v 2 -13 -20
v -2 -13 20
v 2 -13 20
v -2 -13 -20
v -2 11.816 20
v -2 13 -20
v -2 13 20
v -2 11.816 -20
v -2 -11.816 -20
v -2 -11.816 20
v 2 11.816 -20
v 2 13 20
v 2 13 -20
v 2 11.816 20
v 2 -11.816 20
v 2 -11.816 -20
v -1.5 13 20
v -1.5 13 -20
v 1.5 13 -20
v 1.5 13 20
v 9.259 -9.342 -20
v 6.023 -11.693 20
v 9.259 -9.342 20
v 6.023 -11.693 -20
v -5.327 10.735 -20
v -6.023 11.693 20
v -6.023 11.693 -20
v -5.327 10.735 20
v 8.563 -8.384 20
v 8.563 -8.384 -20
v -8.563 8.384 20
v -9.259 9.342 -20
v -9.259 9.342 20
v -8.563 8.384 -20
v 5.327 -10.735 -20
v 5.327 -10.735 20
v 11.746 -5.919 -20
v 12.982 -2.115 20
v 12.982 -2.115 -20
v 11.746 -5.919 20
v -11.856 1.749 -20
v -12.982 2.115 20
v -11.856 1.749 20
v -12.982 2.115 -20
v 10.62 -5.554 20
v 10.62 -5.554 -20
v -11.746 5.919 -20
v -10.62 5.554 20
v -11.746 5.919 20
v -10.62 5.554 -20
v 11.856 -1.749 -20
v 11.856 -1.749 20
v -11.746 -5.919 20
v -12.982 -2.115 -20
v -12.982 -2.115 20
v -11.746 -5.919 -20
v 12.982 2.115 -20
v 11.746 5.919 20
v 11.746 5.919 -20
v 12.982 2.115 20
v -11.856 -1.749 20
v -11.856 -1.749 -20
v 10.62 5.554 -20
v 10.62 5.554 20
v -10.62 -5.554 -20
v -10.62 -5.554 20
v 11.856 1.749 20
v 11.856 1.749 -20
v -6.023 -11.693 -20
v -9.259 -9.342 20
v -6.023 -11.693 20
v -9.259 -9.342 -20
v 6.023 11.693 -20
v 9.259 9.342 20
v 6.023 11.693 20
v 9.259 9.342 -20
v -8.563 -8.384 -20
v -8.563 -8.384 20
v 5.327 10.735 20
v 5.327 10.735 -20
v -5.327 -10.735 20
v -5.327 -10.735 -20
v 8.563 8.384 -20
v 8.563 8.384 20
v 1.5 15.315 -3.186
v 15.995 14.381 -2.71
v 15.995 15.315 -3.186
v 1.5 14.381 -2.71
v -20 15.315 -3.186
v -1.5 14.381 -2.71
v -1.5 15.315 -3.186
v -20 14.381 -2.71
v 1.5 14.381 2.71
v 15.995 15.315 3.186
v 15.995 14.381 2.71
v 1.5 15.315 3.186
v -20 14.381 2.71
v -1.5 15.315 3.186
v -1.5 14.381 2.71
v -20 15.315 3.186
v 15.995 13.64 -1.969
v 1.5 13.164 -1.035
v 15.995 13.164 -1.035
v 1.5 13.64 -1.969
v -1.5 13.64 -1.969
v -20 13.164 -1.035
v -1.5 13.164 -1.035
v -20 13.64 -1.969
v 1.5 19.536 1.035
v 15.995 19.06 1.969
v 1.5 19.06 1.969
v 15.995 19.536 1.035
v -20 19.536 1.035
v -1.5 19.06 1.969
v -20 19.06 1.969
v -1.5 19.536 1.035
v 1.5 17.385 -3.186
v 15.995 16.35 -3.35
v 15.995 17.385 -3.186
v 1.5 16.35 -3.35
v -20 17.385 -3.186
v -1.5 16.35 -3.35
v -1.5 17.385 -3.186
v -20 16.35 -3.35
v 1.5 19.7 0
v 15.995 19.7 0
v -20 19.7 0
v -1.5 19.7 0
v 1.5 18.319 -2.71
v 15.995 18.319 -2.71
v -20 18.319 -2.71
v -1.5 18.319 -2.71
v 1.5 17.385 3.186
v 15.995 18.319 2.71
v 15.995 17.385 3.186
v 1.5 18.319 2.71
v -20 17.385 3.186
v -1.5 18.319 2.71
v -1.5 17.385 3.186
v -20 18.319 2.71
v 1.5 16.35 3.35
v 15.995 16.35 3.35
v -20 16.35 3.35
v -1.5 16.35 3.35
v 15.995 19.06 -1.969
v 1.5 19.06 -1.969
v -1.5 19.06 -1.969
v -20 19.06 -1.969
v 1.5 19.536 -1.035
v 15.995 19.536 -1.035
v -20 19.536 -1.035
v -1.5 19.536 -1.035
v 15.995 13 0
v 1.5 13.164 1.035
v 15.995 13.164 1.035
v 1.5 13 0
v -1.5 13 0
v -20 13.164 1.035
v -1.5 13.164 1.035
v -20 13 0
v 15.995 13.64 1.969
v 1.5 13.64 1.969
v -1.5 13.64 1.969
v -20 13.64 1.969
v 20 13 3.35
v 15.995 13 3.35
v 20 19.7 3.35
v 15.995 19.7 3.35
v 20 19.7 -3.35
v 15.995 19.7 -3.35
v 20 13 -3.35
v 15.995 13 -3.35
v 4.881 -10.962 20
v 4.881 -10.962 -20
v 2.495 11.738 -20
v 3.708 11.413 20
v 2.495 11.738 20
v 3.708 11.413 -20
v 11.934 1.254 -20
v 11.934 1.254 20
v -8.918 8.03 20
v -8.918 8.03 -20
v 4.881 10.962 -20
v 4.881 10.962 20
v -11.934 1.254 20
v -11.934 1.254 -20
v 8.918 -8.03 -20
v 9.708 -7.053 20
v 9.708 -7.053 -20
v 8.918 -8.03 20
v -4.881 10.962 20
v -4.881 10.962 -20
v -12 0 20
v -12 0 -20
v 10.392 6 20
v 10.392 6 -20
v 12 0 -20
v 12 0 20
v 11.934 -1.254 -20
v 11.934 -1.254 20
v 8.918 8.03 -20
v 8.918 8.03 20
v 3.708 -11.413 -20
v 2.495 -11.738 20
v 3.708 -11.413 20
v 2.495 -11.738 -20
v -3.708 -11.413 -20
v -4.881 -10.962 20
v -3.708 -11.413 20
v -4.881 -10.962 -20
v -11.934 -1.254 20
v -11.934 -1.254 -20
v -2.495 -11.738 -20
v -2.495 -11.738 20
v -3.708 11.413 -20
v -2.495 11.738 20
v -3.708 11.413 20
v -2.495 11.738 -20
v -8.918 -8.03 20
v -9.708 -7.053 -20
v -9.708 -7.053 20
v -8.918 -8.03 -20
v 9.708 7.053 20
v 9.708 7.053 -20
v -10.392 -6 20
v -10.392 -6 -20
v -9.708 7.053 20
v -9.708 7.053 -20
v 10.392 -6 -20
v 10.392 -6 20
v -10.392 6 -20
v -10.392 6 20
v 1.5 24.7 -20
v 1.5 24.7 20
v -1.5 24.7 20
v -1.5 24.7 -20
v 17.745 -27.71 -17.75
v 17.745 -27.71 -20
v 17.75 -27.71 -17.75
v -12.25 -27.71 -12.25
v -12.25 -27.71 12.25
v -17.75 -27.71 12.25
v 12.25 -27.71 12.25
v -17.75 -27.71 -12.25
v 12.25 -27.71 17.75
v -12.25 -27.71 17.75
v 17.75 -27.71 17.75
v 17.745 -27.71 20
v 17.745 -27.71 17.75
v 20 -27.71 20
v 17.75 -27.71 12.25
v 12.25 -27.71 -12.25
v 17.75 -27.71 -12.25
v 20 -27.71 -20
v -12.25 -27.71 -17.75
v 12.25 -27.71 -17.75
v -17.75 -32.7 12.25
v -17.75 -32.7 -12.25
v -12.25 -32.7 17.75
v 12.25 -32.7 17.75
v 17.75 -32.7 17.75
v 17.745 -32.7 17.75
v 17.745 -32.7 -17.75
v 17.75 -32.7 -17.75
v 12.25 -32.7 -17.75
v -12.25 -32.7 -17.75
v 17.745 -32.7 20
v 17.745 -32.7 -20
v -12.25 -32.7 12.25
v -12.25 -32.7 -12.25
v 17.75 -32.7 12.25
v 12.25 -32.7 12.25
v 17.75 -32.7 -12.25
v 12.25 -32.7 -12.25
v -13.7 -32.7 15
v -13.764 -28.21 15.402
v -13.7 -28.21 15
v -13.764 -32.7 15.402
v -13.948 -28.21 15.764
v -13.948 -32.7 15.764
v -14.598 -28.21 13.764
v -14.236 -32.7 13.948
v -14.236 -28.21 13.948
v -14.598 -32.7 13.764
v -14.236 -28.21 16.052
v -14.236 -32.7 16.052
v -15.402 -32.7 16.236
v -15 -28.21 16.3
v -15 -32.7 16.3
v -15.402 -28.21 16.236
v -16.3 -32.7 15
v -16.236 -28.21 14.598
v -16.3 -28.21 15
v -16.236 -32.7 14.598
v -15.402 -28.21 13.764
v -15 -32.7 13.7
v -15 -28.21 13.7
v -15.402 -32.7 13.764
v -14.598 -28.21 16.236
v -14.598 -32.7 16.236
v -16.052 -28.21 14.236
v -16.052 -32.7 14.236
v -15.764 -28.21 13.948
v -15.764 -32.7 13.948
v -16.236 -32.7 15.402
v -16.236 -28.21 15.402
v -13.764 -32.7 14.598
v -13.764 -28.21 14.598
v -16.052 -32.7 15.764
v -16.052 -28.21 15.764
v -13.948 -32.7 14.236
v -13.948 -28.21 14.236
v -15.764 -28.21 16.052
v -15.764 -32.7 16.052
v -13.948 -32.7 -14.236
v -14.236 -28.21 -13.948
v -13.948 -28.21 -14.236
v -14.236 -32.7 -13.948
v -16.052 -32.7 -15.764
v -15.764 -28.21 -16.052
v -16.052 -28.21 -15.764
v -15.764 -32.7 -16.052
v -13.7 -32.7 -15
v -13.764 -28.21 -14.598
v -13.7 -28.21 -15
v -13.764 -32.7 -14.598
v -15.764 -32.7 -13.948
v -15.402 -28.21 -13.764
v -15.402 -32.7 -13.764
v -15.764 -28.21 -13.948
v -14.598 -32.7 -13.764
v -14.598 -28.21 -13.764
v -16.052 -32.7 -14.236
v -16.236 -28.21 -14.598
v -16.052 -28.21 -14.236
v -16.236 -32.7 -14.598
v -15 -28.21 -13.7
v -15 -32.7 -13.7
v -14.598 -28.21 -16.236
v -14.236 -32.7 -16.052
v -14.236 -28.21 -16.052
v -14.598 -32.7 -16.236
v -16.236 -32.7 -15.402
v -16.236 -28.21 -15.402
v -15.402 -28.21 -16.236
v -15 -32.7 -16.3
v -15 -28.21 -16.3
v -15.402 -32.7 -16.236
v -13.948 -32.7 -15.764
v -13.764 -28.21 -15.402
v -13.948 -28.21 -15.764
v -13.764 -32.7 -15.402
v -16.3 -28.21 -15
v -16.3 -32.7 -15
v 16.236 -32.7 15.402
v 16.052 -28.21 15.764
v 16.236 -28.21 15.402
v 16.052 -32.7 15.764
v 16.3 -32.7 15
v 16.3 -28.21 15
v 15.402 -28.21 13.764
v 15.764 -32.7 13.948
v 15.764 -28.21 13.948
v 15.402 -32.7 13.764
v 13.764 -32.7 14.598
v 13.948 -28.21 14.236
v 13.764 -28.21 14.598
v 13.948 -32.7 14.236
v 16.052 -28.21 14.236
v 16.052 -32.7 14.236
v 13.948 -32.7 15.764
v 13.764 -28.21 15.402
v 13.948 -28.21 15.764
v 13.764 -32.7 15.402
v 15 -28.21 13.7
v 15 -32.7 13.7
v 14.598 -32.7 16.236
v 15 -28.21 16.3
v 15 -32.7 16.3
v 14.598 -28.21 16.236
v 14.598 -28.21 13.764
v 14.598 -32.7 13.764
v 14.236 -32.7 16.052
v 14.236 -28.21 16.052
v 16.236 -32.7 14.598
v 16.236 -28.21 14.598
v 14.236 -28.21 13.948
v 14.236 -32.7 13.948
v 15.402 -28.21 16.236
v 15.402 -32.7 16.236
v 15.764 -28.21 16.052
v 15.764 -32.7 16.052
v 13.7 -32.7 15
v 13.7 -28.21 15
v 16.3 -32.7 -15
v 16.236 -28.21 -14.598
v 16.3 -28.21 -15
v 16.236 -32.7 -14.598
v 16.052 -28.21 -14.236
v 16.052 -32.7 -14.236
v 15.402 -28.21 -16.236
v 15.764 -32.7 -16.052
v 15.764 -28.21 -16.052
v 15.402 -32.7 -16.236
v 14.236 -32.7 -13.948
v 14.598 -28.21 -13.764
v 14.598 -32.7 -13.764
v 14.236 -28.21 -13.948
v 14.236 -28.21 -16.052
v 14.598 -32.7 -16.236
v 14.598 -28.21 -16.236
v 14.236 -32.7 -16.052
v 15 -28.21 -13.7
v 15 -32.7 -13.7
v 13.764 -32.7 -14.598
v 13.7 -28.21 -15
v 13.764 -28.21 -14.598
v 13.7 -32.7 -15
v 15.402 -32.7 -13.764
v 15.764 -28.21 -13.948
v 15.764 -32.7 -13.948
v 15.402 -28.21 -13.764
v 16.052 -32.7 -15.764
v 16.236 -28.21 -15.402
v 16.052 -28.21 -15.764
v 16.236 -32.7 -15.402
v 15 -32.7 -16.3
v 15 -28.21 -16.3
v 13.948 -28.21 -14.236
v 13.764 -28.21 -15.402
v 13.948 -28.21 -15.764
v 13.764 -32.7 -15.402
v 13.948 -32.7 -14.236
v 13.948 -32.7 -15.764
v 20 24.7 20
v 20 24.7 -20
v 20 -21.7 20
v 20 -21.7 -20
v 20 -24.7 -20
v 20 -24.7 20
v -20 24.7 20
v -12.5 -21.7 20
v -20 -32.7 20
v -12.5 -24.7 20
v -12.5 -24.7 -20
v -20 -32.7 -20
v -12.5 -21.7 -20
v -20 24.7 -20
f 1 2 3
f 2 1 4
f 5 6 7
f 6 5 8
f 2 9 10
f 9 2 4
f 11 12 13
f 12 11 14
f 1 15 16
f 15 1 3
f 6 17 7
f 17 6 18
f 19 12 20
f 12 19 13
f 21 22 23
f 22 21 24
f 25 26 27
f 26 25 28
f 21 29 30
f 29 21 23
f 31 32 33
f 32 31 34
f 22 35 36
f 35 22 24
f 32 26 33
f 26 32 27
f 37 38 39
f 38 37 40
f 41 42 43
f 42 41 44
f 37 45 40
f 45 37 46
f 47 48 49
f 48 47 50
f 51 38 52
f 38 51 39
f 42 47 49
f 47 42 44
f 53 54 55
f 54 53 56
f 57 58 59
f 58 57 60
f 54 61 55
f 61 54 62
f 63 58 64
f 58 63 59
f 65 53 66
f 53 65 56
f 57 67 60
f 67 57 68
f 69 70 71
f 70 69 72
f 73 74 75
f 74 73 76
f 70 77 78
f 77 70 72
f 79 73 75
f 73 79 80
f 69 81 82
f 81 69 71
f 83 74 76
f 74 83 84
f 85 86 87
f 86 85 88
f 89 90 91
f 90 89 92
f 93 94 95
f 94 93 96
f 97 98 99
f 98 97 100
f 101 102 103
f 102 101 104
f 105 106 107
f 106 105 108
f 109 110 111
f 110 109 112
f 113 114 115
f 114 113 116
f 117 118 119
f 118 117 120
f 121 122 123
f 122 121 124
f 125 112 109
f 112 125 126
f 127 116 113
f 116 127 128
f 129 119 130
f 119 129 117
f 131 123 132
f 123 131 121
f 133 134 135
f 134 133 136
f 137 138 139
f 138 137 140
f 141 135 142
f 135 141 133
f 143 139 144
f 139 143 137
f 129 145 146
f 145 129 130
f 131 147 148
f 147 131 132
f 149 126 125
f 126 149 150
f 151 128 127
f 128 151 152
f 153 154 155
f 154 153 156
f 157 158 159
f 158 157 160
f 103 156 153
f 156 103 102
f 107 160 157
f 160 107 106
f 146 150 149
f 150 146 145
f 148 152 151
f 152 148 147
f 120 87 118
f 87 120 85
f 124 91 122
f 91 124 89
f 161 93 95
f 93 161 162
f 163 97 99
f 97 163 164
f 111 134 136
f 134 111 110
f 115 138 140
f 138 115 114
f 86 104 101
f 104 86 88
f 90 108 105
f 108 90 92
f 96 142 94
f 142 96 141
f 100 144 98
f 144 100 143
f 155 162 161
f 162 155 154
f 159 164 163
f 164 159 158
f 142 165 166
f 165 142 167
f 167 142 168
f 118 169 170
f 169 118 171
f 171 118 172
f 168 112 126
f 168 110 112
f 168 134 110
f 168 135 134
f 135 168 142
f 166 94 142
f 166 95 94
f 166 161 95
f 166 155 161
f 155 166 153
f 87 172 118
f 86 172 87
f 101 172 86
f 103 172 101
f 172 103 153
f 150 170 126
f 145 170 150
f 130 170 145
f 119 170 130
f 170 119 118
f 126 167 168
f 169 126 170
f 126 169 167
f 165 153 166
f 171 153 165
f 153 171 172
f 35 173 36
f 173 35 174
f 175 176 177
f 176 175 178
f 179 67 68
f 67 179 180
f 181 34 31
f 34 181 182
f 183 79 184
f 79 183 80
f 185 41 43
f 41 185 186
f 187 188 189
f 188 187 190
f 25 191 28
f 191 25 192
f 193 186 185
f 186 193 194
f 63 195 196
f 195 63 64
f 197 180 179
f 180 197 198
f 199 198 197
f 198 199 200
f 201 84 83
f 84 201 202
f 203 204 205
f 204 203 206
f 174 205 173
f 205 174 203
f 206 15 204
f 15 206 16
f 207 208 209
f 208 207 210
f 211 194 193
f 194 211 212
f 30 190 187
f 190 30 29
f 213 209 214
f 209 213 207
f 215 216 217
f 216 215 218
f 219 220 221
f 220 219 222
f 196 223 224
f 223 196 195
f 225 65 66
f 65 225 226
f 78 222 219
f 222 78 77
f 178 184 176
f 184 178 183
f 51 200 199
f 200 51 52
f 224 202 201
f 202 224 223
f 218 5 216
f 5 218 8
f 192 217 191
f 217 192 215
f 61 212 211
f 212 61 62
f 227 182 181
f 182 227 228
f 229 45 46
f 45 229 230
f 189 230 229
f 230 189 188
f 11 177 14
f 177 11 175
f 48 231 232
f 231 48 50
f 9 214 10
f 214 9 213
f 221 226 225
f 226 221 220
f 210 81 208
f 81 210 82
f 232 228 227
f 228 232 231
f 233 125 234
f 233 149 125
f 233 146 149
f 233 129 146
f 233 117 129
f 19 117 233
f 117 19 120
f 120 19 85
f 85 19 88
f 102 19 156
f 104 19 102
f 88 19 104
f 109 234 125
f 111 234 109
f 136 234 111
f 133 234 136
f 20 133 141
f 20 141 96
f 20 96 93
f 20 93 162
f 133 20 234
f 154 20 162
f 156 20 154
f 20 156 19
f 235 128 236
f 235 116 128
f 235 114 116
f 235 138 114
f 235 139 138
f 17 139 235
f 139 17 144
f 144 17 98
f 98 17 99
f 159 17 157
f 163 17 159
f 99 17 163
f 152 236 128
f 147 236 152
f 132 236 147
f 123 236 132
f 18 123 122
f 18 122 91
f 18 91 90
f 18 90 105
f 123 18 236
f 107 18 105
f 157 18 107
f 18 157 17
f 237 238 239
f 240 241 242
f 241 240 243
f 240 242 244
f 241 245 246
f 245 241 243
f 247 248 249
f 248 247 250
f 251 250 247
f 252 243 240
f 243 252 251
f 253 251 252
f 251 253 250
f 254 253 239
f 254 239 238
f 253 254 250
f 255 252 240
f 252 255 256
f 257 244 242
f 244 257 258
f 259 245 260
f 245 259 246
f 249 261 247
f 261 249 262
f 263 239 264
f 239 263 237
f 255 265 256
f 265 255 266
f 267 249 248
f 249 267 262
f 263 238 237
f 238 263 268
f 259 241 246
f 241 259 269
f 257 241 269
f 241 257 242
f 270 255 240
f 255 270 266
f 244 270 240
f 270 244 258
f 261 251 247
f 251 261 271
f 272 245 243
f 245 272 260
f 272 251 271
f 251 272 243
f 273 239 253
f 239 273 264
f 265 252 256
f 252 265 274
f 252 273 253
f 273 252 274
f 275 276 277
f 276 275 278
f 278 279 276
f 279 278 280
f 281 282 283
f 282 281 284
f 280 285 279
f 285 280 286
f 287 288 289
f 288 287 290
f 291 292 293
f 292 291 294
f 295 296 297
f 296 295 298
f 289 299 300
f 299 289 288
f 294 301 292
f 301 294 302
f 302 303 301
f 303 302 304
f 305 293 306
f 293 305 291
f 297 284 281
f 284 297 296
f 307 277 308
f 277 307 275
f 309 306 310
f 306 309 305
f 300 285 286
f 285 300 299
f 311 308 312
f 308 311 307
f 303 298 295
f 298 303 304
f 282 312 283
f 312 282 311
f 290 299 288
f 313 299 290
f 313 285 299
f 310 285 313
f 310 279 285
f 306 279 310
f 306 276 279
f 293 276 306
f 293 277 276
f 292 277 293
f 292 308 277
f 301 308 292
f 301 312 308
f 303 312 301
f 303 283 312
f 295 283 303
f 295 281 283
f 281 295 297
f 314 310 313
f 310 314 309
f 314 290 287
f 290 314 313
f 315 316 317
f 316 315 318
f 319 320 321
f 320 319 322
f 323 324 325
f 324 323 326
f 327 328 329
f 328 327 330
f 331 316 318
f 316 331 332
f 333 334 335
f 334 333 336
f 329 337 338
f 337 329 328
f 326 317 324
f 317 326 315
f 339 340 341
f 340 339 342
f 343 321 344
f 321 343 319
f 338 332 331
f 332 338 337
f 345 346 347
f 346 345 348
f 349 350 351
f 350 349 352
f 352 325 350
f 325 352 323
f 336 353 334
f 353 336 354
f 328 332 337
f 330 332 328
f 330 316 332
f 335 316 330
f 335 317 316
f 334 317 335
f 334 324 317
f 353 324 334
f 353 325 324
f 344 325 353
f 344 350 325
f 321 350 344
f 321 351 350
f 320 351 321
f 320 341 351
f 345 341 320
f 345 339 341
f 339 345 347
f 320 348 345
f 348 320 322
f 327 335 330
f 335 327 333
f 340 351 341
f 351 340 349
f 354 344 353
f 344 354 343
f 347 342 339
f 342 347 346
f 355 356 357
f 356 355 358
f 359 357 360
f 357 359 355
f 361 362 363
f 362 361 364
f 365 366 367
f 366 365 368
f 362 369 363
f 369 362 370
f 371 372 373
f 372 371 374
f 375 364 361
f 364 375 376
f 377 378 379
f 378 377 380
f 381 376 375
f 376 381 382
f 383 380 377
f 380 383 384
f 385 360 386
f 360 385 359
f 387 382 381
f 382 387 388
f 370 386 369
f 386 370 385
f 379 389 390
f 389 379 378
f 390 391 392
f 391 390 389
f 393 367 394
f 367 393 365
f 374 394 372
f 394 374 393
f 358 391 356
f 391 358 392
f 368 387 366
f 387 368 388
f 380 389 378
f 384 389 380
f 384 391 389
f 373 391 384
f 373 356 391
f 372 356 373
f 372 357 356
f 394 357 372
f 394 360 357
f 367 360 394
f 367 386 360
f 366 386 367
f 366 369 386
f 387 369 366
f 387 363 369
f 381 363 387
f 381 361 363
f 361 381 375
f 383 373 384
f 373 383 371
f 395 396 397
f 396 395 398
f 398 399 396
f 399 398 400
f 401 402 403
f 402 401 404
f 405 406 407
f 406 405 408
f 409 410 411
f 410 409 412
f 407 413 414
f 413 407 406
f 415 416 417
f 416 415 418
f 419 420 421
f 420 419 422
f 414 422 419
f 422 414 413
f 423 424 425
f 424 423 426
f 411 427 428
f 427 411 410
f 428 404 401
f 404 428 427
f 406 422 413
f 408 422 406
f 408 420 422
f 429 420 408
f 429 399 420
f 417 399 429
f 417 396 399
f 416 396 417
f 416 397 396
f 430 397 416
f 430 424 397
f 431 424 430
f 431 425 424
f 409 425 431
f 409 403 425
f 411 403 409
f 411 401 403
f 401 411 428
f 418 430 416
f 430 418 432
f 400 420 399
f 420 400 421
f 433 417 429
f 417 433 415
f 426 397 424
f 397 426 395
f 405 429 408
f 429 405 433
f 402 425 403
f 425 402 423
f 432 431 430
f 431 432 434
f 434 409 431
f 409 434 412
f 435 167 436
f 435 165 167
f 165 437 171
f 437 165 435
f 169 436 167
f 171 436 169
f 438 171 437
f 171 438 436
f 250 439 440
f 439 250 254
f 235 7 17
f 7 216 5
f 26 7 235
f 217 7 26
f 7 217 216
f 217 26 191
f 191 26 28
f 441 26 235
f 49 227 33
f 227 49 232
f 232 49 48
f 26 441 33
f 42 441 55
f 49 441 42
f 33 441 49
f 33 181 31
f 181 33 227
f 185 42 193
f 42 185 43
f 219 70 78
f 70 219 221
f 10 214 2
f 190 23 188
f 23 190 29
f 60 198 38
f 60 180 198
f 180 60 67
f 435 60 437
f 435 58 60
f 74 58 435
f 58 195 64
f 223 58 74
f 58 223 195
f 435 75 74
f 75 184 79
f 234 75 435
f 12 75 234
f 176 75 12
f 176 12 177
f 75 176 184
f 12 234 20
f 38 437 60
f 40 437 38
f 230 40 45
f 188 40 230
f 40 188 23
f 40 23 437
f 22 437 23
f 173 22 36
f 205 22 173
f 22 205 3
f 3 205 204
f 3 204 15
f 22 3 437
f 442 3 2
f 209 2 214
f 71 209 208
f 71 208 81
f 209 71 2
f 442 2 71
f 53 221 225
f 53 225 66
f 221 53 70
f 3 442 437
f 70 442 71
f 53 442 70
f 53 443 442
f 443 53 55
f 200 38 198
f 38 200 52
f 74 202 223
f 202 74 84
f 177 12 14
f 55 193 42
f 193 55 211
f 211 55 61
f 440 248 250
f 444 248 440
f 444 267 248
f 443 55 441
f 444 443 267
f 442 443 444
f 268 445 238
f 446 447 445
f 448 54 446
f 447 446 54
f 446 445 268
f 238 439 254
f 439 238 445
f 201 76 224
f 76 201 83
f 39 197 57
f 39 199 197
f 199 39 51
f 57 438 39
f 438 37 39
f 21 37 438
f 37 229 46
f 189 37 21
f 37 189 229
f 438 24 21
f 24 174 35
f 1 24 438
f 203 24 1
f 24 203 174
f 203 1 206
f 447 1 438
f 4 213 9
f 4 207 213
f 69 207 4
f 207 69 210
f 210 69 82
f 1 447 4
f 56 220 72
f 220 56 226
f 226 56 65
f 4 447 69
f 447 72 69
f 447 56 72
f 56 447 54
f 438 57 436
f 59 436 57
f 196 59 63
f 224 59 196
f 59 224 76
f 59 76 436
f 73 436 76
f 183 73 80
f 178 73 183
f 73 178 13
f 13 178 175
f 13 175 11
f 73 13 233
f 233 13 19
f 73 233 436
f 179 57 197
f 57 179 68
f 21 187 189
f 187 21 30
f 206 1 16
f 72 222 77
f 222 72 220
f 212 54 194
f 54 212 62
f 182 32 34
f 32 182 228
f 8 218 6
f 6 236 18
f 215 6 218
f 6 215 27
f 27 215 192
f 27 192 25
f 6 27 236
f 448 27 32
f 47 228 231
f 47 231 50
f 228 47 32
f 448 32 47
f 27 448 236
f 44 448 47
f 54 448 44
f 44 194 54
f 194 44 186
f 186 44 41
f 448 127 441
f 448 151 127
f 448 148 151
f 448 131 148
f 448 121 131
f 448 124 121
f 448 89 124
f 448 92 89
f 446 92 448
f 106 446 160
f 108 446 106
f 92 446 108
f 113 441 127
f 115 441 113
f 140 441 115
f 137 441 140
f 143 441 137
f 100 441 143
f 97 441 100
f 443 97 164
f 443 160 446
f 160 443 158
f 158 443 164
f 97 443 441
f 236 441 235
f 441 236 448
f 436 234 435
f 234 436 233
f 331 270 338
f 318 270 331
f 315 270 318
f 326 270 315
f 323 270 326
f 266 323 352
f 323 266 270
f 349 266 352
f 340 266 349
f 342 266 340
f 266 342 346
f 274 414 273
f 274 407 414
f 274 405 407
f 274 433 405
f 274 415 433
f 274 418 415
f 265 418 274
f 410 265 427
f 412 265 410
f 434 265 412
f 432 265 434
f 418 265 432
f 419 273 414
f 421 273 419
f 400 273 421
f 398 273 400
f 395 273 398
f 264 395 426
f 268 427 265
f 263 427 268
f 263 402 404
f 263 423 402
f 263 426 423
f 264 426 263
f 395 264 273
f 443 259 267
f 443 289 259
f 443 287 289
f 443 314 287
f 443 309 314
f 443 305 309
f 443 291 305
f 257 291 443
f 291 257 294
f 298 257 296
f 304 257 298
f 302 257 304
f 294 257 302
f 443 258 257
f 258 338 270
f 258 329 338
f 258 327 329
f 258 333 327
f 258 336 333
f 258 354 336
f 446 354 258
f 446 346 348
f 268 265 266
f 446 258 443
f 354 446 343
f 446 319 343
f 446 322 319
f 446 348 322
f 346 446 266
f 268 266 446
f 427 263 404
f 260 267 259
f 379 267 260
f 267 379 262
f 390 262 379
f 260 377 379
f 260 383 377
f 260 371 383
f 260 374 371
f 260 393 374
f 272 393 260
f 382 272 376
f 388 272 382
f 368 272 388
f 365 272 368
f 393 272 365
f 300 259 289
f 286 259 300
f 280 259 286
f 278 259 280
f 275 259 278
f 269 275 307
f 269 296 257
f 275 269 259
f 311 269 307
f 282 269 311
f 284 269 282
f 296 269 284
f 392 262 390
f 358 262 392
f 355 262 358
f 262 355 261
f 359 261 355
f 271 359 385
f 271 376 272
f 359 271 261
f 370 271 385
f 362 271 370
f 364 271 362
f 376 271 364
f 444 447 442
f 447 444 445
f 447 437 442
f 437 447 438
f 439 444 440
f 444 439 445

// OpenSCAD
// file: lib/boltDim.scad
/*
    Mounting Blocks to build a camera boom.

    Copyright (C) 2021 John Winans

    This program is free software: you can redistribute it and/or modify
    it under the terms of the GNU General Public License as published by
    the Free Software Foundation, either version 3 of the License, or
    (at your option) any later version.

    This program is distributed in the hope that it will be useful,
    but WITHOUT ANY WARRANTY; without even the implied warranty of
    MERCHANTABILITY or FITNESS FOR A PARTICULAR PURPOSE.  See the
    GNU General Public License for more details.

    You should have received a copy of the GNU General Public License
    along with this program.  If not, see <https://www.gnu.org/licenses/>.
*/

bolt_dim_M2_dia = 3;		// for M2 bolt loose fit
bolt_dim_M2_tap = 2.4;		// for self-tapping a M2 bolt
bolt_dim_M2_head_dia = 4.6;// diameter for a crown countersink

bolt_dim_M25_dia = 3.5;		// for M2.5 bolt loose fit
bolt_dim_M25_tap = 2.6;		// for self-tapping a M2.5 bolt
bolt_dim_M25_head_dia = 6;	// diameter for a crown countersink

bolt_dim_M3_dia = 3.6;		// M3 bolt loose fit
bolt_dim_M3_tap = 3.1;		// for self-tapping M3 bolt
bolt_dim_M3_head_dia = 6.5;	// diameter for a crown countersink

bolt_dim_M5_dia = 5.4;		// for M5 bolt loose fit
bolt_dim_M5_tap = 5;		// for self-tapping a M5 bolt
bolt_dim_M5_head_dia = 9;	// diameter for a crown countersink

nut_dim_M5_DIN985 = 9.6;	// diameter for a hex hole to retain am M5 myloc


bolt_dim_quarter_dia = 6.7;	// for 1/4" bolt loose fit
bolt_dim_quarter_carriage_neck_depth = 4;	// neck length
// file: lib/pimount.scad
/*
    Mounting Blocks to build a camera boom.

    Copyright (C) 2021 John Winans

    This program is free software: you can redistribute it and/or modify
    it under the terms of the GNU General Public License as published by
    the Free Software Foundation, either version 3 of the License, or
    (at your option) any later version.

    This program is distributed in the hope that it will be useful,
    but WITHOUT ANY WARRANTY; without even the implied warranty of
    MERCHANTABILITY or FITNESS FOR A PARTICULAR PURPOSE.  See the
    GNU General Public License for more details.

    You should have received a copy of the GNU General Public License
    along with this program.  If not, see <https://www.gnu.org/licenses/>.
*/


include <boltDim.scad>


//pi3_example();

piX=85;
piY=56;

piDefaultStandoffHeight=5;

piDimX=85;
piDimY=56;
piDimCornerRad=3;


// 49x58 square on center
piHoleCenters=[
	[ 3.5, 3.5, 0 ],
	[ 3.5, 3.5+49, 0 ],
	[ 3.5+58, 3.5, 0 ],
	[ 3.5+58, 3.5+49, 0 ]
];


v1_hole_centers=[
	[ -24/2+2, 25/2-2, 0 ],
	[ -24/2+2, -25/2+2, 0 ],
	[ -24/2+2+12.5, 25/2-2, 0 ],
	[ -24/2+2+12.5, -25/2+2, 0 ],
];


hq_hole_centers=[
	[ -38/2+4, 38/2-4, 0 ],
	[ -38/2+4, -38/2+4, 0 ],
	[ 38/2-4, 38/2-4, 0 ],
	[ 38/2-4, -38/2+4, 0 ],
];


/**
* The material to add in order to mount a Raspberry PI3. 
* For example, things like standoffs.
******************************************************************/
module pi3_pos(standoffHeight=piDefaultStandoffHeight, reference=true)
{
    translate([0, 0, -(standoffHeight+.01)])
        for ( pos = piHoleCenters )
            translate(pos) cylinder(d=6, h=standoffHeight, $fn=20);
  
    if(reference)  
    {
        // reference PCB shape (shown but not part of the object)
        %translate([piDimCornerRad, piDimCornerRad, 0]) minkowski()
        {
            cube([piDimX-2*piDimCornerRad, piDimY-2*piDimCornerRad, 1.4-.02]);
            cylinder(r=piDimCornerRad, h=.01);
        }
    }
}


/**
******************************************************************/
module pi_camera_v1_neg(
	standoffHeight=piDefaultStandoffHeight, 
	mountHoleDepth=4.5, 
	threadin=true)
{
	boltd=threadin ? bolt_dim_M2_tap : bolt_dim_M2_dia;
	for (pos = v1_hole_centers)
		translate(pos) translate([0,0,standoffHeight-mountHoleDepth]) cylinder(d=boltd, h=mountHoleDepth+.01, $fn=20);
	//translate([0,0,standoffHeight/2]) cube([25,19,piDefaultStandoffHeight], center=true);
}

/**
******************************************************************/
module pi_camera_v1_pos(
    standoffHeight=piDefaultStandoffHeight)
{
	for (pos = v1_hole_centers)
		translate(pos) 
			cylinder(d=4, h=standoffHeight, $fn=30);
}

/**
******************************************************************/
module pi_camera_hq_neg(
	standoffHeight=piDefaultStandoffHeight, 
	mountHoleDepth=4.5, 
	threadin=true)
{
	boltd=threadin ? bolt_dim_M25_tap : bolt_dim_M25_dia;
	for (pos = hq_hole_centers)
		translate(pos) translate([0,0,standoffHeight-mountHoleDepth]) cylinder(d=boltd, h=mountHoleDepth+.01, $fn=20);
}

/**
******************************************************************/
module pi_camera_hq_pos(
    standoffHeight=piDefaultStandoffHeight)
{
	for (pos = hq_hole_centers)
		translate(pos) 
			translate([0,0,standoffHeight/2]) cube([5.5,5.5,standoffHeight], center=true);
}


/**
* The material to subtract to mount a Raspberry PI3.
* For example, things like the bolt holes within standoffs,
* conectors,...
*
* @param threadin True=make standoff holes to thread 2.5mm 
*   into the material itself, False=proivide space for bolt & 
*   countersink the head
******************************************************************/
module pi3_neg(standoffHeight=piDefaultStandoffHeight, mountHoleDepth=4.5, threadin=true)
{
    boltd=threadin ? bolt_dim_M25_tap : bolt_dim_M25_dia;
    
    // hollow out the standoffs
    translate([0, 0, -mountHoleDepth-.01])
        for (pos = piHoleCenters)
        {
            translate(pos) cylinder(d=boltd, h=mountHoleDepth+.02, $fn=20); // bolt
            if (!threadin)
                translate(pos) cylinder(d=5, h=7, $fn=20); // countersink
        }
        
    // The Ethernet
    translate([85, 11, 1.4+14.5/2]) cube([20, 17, 14.5], center=true);

    // The USB ports
    translate([85, 29, 1.4+16.5/2]) cube([20, 16, 16.5], center=true);
    translate([85, 47, 1.4+16.5/2]) cube([20, 16, 16.5], center=true);

//15x6 on center
    // an access slot for the SD card
    translate([0, 28,-1]) cube([30, 15, 6], center=true);
}






// a test module to demonstrate how to use this
module pi3_example()
{
    difference()
    {
        pi3_pos();		// the mounting material
        pi3_neg();		// ...less the holes for bolts, connectors etc
    }
}
// file: lib/clamp.scad
/*
	Mounting Blocks to build a camera boom.

    Copyright (C) 2021 John Winans

    This program is free software: you can redistribute it and/or modify
    it under the terms of the GNU General Public License as published by
    the Free Software Foundation, either version 3 of the License, or
    (at your option) any later version.

    This program is distributed in the hope that it will be useful,
    but WITHOUT ANY WARRANTY; without even the implied warranty of
    MERCHANTABILITY or FITNESS FOR A PARTICULAR PURPOSE.  See the
    GNU General Public License for more details.

    You should have received a copy of the GNU General Public License
    along with this program.  If not, see <https://www.gnu.org/licenses/>.
*/

include <boltDim.scad>


//********************************************************
// A pipe & bolt holes for a pipe clamp.
//********************************************************
module clamp_neg(
    relief_slot,        // how far from the edge of the pipe should the relief slot go?
    pipe_length, 
    pipe_diameter,
    clamp_bolt_length,    // used to determine the length of the clamp bolt
    clamp_bolt_dia,
    clamp_bolt_neck_depth,
    clamp_bolt_clearance,
    rib=false, 
    stripe=true
    )
{
    clamp_bolt_offset = pipe_diameter/2+clamp_bolt_dia/2+clamp_bolt_clearance;

    cz = pipe_length+.01;
    
    // the pipe hole
    cylinder(d=pipe_diameter, h=cz+.01, center=true, $fn=60);
    
    if (rib)
    {
        // rib it
        rh=2;
        rs=4;
        for (z=[-cz/2+rh*.5+1 : rs : cz/2]) // XXX fudge start to center it
            translate([0,0,z])
                cylinder(d=pipe_diameter+1, h=rh, center=true, $fn=60);
    }
    
    if (stripe)
    {
        // stripe it
        //rh=1.5;
        rh=4;
        rt=360/10;
        for (theta=[90:rt:2690])
            rotate([0,0,theta]) cube([pipe_diameter+2, rh, cz+.01], center=true);
    }
    
    // releif notch
    translate([0,pipe_diameter/2+relief_slot/2,0]) cube([3, relief_slot+.01, cz+.01], center=true);
    
    // clamp bolt
    translate([0,clamp_bolt_offset,0])
    {
        rotate([0,90,0]) 
        cylinder(d=clamp_bolt_dia, h=clamp_bolt_length+.01, $fn=20, center=true);
    
        // square for carriage bolt head
        translate([clamp_bolt_length/2-clamp_bolt_neck_depth/2,0,0])
            cube([clamp_bolt_neck_depth+.01, clamp_bolt_dia,clamp_bolt_dia], center=true);
    }
}
// main file
/*
    Mounting Blocks to build a camera boom.

    Copyright (C) 2021 John Winans

    This program is free software: you can redistribute it and/or modify
    it under the terms of the GNU General Public License as published by
    the Free Software Foundation, either version 3 of the License, or
    (at your option) any later version.

    This program is distributed in the hope that it will be useful,
    but WITHOUT ANY WARRANTY; without even the implied warranty of
    MERCHANTABILITY or FITNESS FOR A PARTICULAR PURPOSE.  See the
    GNU General Public License for more details.

    You should have received a copy of the GNU General Public License
    along with this program.  If not, see <https://www.gnu.org/licenses/>.
*/

include <lib/clamp.scad>
include <lib/pimount.scad>


//********************************************************
// The size of the hole for the pipe(s)
pipe_diameter=24;       // 3/4" conduit


block_c_bolt_pipe_clearance=1;
block_c_bolt_inset=5;       // from clamp-bolt to the end of the block

block_inset=16;
//block_inset=20;





// calculate the dimensions of the block using the above config variables

cx = pipe_diameter+block_inset;   

cbd=bolt_dim_quarter_dia;		// clamp bolt diameter
cz=cx;							// make the block square 

cbl=cx;							// length of the clamp bolt bore
cbnd=bolt_dim_quarter_carriage_neck_depth;

cbc=1;							// gap between the clamp bolt & pipe
rs=cbd+block_c_bolt_inset+cbc;	// relief slot width

cam_offset=8;					// how far to stick out the 'back'

cy = pipe_diameter+rs*2+cam_offset;


hqblock();


/**
* A helper module to create the clamp negative space using the above config values.
**********************************************************************************/
module cn()
{
    clamp_neg(
        clamp_bolt_length=cbl,
        clamp_bolt_dia=cbd,
        clamp_bolt_neck_depth=cbnd,
        relief_slot=rs,
        pipe_length=cz,
        pipe_diameter=pipe_diameter,
        clamp_bolt_clearance=cbc);
}


/**
* A mounting bracket for a RPI V1.3 camera
**********************************************************************************/
module hqblock()
{
	// dimensions of the camera-plate
	cpx=cx;
	cpy=cam_offset;
	cpz=cz;

	cam_depth=5;
	
    
    difference()
    {
		translate([0,-cam_offset/2,0]) cube([cx,cy,cz], center=true);
        cn();

        strain_offset=block_inset/2;
        strain_thickness=3;
        // strain relief
        translate([strain_offset,-cy/2+cam_offset/2+strain_thickness/2,0]) 
			cube([cx+1,3, cz+1], center=true);

		translate([0,-cy/2-cam_offset/2+cam_depth-.01,0]) 
		{
			rotate([90,0,0]) 
			{
				difference()
				{
					union()
					{
						translate([0,0,cam_depth/2]) cube([35.5,35.5,cam_depth], center=true);
						translate([38/2,0,cam_depth/2]) cube([2.51,cz+.01,cam_depth], center=true);
					}
					pi_camera_hq_pos();
				}
				pi_camera_hq_neg();
			}
		}
    }
}
